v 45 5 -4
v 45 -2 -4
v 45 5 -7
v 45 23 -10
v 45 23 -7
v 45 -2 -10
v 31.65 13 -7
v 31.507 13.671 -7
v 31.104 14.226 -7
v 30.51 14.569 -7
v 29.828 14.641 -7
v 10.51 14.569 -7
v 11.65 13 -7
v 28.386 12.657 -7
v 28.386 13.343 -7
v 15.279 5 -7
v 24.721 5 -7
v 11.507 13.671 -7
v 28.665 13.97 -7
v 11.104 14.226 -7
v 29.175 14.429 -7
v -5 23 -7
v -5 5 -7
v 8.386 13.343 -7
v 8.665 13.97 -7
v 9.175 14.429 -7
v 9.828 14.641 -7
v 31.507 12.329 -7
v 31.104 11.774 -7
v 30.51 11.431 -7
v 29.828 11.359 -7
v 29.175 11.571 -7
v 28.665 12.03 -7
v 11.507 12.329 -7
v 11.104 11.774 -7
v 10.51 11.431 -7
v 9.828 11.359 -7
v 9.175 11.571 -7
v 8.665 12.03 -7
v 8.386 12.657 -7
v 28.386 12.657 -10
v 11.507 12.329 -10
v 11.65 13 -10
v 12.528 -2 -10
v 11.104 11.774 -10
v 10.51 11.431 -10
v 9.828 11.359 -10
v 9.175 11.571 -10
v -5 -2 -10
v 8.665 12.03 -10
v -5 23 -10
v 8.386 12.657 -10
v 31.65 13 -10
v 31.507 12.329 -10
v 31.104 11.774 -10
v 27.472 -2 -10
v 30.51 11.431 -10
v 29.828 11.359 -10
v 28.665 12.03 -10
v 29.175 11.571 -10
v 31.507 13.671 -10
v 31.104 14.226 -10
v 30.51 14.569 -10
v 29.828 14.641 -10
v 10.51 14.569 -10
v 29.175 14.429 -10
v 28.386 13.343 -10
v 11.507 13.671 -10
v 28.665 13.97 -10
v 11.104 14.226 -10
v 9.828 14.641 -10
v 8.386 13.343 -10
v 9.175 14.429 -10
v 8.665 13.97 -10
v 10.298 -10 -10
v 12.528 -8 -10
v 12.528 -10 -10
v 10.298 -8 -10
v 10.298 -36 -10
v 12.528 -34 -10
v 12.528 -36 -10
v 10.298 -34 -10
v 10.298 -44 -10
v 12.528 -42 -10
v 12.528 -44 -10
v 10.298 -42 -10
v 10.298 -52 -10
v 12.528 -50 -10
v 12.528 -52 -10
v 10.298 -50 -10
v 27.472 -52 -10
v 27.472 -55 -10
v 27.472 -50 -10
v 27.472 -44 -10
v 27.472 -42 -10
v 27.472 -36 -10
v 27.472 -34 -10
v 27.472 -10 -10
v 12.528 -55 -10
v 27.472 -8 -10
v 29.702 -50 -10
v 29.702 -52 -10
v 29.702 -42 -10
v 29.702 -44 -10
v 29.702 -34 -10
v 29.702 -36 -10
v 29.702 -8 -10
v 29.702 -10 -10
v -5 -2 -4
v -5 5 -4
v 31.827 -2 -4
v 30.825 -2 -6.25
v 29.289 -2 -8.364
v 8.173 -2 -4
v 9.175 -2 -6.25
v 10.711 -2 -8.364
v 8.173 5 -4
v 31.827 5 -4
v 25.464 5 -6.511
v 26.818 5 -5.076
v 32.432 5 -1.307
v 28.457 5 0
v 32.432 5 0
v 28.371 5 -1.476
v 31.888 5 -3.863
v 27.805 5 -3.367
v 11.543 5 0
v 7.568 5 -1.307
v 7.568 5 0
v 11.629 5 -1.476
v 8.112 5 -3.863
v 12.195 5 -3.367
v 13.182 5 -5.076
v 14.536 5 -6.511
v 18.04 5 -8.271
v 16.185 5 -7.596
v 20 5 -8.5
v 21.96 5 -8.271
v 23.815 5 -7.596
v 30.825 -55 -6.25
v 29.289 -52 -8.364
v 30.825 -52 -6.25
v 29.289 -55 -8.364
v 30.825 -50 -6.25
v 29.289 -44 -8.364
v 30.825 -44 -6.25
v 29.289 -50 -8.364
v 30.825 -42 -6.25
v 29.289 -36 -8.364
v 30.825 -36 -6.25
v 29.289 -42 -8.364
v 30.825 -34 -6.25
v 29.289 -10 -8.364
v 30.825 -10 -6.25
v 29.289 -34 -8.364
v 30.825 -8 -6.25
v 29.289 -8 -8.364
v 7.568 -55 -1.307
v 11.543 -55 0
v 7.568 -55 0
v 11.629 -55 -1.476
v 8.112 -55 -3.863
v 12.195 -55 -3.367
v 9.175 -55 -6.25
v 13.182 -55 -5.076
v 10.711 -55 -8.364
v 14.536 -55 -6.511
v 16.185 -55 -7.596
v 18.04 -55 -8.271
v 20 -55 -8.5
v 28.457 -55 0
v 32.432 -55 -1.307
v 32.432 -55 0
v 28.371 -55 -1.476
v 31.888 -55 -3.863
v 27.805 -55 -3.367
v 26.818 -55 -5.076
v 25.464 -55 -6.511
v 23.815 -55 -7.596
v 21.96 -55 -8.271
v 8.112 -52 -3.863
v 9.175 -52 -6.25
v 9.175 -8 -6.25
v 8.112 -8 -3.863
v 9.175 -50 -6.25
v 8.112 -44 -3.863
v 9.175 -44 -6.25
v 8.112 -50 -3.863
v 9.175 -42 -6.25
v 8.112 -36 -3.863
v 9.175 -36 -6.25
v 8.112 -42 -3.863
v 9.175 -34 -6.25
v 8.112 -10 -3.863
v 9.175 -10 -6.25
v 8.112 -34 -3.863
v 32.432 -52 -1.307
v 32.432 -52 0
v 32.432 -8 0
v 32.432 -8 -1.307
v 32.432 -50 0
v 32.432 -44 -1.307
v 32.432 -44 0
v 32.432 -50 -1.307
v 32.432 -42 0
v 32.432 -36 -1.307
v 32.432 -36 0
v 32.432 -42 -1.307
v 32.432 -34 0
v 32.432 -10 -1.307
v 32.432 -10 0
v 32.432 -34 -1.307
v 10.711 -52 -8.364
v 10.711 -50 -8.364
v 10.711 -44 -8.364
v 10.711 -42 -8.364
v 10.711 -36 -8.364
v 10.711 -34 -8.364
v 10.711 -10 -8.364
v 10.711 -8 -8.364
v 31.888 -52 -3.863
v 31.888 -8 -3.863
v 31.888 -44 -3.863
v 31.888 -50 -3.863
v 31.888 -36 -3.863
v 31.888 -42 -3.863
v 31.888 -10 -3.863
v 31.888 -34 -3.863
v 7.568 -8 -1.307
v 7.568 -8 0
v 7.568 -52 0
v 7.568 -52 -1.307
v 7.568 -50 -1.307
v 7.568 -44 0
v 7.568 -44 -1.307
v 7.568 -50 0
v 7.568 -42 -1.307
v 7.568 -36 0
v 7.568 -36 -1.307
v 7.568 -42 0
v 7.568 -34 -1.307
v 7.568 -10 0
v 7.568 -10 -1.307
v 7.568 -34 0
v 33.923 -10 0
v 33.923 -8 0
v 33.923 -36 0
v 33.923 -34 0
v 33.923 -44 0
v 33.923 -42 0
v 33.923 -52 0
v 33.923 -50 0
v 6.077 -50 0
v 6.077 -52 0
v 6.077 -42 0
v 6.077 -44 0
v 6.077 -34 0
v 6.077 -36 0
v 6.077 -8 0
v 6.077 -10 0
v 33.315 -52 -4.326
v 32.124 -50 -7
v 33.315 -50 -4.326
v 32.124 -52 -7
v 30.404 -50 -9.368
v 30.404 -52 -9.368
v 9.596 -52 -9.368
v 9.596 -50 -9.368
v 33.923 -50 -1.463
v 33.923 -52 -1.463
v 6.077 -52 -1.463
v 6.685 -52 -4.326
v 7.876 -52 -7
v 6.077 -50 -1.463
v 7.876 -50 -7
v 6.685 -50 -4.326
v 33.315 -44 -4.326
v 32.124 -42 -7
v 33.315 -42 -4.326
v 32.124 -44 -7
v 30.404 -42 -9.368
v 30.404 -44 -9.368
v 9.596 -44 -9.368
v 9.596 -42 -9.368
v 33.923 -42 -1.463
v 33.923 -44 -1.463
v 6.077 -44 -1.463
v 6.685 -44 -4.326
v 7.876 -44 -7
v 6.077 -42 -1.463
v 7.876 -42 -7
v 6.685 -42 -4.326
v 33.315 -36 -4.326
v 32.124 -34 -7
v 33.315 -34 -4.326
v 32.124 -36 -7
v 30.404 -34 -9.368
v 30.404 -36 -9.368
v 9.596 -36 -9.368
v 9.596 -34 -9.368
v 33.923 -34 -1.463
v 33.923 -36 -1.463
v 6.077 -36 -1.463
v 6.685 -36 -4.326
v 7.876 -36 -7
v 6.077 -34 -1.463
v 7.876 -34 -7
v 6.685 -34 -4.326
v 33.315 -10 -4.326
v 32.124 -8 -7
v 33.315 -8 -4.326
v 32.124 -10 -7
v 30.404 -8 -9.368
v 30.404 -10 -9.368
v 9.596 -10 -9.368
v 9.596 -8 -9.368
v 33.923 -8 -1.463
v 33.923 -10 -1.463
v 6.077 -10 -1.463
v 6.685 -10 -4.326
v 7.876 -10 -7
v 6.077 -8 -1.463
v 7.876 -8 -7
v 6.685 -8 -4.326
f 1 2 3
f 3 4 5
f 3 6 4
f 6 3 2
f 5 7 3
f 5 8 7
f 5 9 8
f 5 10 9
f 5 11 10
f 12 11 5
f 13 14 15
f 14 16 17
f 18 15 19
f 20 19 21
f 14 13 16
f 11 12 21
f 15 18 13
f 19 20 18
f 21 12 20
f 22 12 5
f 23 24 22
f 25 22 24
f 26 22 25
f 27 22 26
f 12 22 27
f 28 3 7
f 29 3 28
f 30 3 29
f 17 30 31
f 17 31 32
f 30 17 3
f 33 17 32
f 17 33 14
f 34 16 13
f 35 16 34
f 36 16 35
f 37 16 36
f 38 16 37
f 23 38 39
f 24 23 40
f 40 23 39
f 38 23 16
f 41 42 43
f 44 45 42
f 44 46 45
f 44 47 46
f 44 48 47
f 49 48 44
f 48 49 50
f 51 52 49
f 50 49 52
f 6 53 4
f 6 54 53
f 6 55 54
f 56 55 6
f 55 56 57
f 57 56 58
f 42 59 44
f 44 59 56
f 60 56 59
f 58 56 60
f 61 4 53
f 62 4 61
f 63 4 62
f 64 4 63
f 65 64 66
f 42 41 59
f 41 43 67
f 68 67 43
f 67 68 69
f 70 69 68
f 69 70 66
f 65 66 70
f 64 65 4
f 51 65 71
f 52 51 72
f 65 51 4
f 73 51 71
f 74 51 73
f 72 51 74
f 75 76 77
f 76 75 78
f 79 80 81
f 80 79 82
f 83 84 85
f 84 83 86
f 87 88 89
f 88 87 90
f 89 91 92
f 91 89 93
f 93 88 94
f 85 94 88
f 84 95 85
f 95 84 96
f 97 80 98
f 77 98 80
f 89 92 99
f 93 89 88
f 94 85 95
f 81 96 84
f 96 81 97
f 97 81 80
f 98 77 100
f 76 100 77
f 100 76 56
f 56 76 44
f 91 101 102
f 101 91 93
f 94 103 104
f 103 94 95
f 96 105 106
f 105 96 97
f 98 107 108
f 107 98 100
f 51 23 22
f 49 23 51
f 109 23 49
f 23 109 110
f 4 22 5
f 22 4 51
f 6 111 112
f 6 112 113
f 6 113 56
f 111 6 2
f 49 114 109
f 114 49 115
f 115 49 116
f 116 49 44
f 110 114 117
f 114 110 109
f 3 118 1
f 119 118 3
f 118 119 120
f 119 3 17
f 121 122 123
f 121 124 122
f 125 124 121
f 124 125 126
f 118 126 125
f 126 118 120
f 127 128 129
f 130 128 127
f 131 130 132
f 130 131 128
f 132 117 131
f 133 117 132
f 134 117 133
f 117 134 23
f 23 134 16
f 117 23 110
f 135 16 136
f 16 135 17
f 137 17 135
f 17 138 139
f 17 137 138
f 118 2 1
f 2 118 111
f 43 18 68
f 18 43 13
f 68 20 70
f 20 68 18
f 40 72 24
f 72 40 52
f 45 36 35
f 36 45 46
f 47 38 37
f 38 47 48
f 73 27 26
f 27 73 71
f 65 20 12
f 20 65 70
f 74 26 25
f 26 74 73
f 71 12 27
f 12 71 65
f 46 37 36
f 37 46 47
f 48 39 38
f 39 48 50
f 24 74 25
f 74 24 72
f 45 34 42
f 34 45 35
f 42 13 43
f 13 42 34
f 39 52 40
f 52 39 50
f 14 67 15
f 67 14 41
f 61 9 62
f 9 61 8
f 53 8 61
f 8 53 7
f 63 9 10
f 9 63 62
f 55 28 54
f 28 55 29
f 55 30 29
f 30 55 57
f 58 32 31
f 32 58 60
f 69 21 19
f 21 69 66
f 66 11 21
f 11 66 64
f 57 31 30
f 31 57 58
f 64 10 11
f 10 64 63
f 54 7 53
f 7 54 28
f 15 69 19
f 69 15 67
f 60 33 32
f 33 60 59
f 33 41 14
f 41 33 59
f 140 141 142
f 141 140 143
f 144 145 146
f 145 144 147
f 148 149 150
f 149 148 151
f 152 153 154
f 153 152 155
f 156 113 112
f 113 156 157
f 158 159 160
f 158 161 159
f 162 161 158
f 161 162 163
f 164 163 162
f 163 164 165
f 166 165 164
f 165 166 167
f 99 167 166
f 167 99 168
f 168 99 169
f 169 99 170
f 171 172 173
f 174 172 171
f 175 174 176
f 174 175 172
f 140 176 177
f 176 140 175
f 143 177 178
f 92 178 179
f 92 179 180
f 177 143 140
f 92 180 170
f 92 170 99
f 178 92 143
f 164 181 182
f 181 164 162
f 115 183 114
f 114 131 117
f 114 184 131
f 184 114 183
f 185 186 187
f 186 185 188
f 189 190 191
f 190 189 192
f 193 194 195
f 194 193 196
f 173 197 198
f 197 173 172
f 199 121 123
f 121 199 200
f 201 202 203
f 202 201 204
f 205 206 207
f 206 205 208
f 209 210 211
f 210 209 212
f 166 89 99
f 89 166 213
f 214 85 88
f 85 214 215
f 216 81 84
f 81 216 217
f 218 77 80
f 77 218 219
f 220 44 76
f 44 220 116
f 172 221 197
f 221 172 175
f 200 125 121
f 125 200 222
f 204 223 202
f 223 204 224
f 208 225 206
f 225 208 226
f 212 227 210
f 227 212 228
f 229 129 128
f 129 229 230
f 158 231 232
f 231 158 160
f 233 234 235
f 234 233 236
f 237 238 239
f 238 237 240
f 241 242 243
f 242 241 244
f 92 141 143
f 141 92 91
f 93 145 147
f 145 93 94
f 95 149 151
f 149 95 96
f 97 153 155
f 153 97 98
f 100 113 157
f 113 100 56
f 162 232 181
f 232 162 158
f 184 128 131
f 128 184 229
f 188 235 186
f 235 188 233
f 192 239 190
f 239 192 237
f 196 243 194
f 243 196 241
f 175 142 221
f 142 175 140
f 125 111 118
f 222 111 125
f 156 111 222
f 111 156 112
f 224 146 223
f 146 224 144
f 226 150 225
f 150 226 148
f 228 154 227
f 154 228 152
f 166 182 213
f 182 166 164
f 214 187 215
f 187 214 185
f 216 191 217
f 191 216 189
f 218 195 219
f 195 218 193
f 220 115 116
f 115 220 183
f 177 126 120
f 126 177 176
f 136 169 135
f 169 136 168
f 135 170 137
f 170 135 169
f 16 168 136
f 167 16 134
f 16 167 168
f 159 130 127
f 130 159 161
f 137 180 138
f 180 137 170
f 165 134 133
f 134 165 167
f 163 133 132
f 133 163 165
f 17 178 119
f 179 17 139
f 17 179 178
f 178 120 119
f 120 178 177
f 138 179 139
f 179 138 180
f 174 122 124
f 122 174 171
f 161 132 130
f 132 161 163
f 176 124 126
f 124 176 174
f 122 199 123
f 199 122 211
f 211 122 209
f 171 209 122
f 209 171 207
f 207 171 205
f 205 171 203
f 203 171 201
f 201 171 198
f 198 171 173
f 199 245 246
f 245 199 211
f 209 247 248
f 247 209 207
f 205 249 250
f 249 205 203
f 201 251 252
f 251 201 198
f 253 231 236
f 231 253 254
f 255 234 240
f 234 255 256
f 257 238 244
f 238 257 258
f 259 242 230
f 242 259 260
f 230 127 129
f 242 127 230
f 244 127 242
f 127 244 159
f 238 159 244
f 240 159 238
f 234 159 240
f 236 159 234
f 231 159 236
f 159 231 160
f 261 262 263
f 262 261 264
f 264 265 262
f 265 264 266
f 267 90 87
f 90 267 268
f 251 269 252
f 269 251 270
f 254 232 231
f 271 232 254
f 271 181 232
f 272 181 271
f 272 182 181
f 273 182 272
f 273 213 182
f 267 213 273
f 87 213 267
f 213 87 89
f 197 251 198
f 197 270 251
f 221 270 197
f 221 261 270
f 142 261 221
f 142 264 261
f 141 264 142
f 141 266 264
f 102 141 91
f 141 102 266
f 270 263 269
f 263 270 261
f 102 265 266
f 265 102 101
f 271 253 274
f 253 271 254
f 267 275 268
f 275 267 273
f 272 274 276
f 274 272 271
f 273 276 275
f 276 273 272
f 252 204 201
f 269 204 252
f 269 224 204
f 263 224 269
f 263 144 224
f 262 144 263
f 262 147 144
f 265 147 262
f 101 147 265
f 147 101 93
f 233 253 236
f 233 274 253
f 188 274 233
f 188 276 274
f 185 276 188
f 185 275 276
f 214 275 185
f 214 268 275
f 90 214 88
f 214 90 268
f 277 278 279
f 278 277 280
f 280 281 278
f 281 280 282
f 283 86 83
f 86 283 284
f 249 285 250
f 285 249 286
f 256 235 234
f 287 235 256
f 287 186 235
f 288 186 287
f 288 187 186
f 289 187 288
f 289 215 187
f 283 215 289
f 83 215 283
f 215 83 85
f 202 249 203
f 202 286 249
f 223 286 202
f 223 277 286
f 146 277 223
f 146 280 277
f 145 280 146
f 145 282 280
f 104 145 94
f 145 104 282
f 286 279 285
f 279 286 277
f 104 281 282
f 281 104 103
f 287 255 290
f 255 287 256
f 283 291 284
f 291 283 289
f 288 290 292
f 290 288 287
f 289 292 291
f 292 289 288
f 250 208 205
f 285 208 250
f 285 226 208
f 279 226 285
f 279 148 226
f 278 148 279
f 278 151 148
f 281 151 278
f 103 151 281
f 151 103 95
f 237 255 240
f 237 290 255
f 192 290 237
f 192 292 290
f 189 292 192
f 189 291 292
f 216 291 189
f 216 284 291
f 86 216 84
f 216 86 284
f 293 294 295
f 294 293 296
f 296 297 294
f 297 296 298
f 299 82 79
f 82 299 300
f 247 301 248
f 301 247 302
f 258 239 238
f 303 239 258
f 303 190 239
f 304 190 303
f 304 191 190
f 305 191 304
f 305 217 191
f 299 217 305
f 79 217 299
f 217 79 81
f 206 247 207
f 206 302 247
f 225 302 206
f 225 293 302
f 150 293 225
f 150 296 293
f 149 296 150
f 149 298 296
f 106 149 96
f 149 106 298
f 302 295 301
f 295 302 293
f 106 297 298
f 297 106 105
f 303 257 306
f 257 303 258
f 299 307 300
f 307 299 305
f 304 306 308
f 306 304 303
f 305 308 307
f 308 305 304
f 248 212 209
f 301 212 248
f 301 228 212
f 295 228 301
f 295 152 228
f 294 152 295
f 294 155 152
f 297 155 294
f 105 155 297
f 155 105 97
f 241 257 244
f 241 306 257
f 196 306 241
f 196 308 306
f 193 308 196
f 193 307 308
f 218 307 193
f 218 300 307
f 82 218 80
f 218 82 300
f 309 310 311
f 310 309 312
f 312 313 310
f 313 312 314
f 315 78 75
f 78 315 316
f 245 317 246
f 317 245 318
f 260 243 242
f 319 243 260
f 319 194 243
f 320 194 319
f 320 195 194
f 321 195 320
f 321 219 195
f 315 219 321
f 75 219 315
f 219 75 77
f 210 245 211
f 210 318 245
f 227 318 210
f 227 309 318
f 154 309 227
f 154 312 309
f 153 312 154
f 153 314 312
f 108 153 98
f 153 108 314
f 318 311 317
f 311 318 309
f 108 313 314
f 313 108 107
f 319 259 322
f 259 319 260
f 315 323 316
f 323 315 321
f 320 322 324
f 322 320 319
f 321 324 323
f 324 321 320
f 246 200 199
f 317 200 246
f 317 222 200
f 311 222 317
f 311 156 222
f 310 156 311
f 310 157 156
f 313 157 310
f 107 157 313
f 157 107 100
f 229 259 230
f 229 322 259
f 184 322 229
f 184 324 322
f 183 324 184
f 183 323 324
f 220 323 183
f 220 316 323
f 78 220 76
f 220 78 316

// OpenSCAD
// file: common_wire_mount.scad
/* Common code for wiring mounts. See top_wire_mount.scad and 
 * bottom_wire_mount.scad for the model.
 * Copyright 2021 Alex Volkov <alex@flamy.ca>
 * License: Attribution-ShareAlike 4.0 International (CC BY-SA)
 * https://creativecommons.org/licenses/by-sa/4.0/
 *
 * Version 1.0 2021-04-10 Initial publication
 */


m3_bolt_d = 3.3;

module cable_mount(cable_len, out_d, in_d){
    rotate([0, 90, 0 ]){
    difference(){
        cylinder(d=out_d, h=cable_len);
        cylinder(d=in_d, h=cable_len);
        translate([-out_d/2, 0, cable_len/2])
            cube([out_d, out_d, cable_len], center=true);
        }
    }
}


module plate_mount_top(y_offset, thickness=2){
    difference(){
        translate([-5, 0, 0]){
            cube([50, 25, thickness]);
            cube([15, 7, thickness*2]);
            translate([35, 0, 0, ])
                cube([15, 7, thickness*2]);
        }
        translate([10, y_offset, 0])
            cylinder(d=m3_bolt_d, h=10, $fn=15);
        translate([30, y_offset, 0])
            cylinder(d=m3_bolt_d, h=10, $fn=15);
    }
    
}

module plate_mount(y_offset, thickness=2){
    difference(){
        translate([-5, 0, 0]) cube([50, 24, thickness]);
        translate([10, y_offset, 0])
            cylinder(d=m3_bolt_d, h=10, $fn=15);
        translate([30, y_offset, 0])
            cylinder(d=m3_bolt_d, h=10, $fn=15);
    }
    
}
// main file
/* Top wire mount for MKS GEN 1.4 for wiring heated bed and power cables
 * Copyright 2021 Alex Volkov <alex@flamy.ca>
 * License: Attribution-ShareAlike 4.0 International (CC BY-SA)
 * https://creativecommons.org/licenses/by-sa/4.0/
 *
 * Version 1.0 2021-04-10 Initial publication
 */

include <common_wire_mount.scad>

seventeen = 17;

module top_wire_holder(out_d, in_d){
    translate([0,-2,-10]){
        difference() {
            plate_mount_top(15, 3);
            translate([20, 7, 10]){
                rotate([90, 0, 0])
                cylinder(d=20, h=8);
            }
        }
    }
    difference(){
        union(){
            
            translate([20, -55, 0])
                rotate([0, 0, 90])
                    cable_mount(60, out_d, in_d);
            rotate([0,0,270]){
                translate([50, 20, 0])
                    cable_mount(2, out_d + 3, in_d);
                translate([42, 20, 0])
                    cable_mount(2, out_d + 3, in_d);
                translate([34, 20, 0])
                    cable_mount(2, out_d + 3, in_d);
                translate([8, 20, 0])
                    cable_mount(2, out_d + 3, in_d);
            }
        }
        translate([0,-75, -20])
            cube([40, 80, 10]);
    }
}

top_wire_holder(out_d=25, in_d=17);
